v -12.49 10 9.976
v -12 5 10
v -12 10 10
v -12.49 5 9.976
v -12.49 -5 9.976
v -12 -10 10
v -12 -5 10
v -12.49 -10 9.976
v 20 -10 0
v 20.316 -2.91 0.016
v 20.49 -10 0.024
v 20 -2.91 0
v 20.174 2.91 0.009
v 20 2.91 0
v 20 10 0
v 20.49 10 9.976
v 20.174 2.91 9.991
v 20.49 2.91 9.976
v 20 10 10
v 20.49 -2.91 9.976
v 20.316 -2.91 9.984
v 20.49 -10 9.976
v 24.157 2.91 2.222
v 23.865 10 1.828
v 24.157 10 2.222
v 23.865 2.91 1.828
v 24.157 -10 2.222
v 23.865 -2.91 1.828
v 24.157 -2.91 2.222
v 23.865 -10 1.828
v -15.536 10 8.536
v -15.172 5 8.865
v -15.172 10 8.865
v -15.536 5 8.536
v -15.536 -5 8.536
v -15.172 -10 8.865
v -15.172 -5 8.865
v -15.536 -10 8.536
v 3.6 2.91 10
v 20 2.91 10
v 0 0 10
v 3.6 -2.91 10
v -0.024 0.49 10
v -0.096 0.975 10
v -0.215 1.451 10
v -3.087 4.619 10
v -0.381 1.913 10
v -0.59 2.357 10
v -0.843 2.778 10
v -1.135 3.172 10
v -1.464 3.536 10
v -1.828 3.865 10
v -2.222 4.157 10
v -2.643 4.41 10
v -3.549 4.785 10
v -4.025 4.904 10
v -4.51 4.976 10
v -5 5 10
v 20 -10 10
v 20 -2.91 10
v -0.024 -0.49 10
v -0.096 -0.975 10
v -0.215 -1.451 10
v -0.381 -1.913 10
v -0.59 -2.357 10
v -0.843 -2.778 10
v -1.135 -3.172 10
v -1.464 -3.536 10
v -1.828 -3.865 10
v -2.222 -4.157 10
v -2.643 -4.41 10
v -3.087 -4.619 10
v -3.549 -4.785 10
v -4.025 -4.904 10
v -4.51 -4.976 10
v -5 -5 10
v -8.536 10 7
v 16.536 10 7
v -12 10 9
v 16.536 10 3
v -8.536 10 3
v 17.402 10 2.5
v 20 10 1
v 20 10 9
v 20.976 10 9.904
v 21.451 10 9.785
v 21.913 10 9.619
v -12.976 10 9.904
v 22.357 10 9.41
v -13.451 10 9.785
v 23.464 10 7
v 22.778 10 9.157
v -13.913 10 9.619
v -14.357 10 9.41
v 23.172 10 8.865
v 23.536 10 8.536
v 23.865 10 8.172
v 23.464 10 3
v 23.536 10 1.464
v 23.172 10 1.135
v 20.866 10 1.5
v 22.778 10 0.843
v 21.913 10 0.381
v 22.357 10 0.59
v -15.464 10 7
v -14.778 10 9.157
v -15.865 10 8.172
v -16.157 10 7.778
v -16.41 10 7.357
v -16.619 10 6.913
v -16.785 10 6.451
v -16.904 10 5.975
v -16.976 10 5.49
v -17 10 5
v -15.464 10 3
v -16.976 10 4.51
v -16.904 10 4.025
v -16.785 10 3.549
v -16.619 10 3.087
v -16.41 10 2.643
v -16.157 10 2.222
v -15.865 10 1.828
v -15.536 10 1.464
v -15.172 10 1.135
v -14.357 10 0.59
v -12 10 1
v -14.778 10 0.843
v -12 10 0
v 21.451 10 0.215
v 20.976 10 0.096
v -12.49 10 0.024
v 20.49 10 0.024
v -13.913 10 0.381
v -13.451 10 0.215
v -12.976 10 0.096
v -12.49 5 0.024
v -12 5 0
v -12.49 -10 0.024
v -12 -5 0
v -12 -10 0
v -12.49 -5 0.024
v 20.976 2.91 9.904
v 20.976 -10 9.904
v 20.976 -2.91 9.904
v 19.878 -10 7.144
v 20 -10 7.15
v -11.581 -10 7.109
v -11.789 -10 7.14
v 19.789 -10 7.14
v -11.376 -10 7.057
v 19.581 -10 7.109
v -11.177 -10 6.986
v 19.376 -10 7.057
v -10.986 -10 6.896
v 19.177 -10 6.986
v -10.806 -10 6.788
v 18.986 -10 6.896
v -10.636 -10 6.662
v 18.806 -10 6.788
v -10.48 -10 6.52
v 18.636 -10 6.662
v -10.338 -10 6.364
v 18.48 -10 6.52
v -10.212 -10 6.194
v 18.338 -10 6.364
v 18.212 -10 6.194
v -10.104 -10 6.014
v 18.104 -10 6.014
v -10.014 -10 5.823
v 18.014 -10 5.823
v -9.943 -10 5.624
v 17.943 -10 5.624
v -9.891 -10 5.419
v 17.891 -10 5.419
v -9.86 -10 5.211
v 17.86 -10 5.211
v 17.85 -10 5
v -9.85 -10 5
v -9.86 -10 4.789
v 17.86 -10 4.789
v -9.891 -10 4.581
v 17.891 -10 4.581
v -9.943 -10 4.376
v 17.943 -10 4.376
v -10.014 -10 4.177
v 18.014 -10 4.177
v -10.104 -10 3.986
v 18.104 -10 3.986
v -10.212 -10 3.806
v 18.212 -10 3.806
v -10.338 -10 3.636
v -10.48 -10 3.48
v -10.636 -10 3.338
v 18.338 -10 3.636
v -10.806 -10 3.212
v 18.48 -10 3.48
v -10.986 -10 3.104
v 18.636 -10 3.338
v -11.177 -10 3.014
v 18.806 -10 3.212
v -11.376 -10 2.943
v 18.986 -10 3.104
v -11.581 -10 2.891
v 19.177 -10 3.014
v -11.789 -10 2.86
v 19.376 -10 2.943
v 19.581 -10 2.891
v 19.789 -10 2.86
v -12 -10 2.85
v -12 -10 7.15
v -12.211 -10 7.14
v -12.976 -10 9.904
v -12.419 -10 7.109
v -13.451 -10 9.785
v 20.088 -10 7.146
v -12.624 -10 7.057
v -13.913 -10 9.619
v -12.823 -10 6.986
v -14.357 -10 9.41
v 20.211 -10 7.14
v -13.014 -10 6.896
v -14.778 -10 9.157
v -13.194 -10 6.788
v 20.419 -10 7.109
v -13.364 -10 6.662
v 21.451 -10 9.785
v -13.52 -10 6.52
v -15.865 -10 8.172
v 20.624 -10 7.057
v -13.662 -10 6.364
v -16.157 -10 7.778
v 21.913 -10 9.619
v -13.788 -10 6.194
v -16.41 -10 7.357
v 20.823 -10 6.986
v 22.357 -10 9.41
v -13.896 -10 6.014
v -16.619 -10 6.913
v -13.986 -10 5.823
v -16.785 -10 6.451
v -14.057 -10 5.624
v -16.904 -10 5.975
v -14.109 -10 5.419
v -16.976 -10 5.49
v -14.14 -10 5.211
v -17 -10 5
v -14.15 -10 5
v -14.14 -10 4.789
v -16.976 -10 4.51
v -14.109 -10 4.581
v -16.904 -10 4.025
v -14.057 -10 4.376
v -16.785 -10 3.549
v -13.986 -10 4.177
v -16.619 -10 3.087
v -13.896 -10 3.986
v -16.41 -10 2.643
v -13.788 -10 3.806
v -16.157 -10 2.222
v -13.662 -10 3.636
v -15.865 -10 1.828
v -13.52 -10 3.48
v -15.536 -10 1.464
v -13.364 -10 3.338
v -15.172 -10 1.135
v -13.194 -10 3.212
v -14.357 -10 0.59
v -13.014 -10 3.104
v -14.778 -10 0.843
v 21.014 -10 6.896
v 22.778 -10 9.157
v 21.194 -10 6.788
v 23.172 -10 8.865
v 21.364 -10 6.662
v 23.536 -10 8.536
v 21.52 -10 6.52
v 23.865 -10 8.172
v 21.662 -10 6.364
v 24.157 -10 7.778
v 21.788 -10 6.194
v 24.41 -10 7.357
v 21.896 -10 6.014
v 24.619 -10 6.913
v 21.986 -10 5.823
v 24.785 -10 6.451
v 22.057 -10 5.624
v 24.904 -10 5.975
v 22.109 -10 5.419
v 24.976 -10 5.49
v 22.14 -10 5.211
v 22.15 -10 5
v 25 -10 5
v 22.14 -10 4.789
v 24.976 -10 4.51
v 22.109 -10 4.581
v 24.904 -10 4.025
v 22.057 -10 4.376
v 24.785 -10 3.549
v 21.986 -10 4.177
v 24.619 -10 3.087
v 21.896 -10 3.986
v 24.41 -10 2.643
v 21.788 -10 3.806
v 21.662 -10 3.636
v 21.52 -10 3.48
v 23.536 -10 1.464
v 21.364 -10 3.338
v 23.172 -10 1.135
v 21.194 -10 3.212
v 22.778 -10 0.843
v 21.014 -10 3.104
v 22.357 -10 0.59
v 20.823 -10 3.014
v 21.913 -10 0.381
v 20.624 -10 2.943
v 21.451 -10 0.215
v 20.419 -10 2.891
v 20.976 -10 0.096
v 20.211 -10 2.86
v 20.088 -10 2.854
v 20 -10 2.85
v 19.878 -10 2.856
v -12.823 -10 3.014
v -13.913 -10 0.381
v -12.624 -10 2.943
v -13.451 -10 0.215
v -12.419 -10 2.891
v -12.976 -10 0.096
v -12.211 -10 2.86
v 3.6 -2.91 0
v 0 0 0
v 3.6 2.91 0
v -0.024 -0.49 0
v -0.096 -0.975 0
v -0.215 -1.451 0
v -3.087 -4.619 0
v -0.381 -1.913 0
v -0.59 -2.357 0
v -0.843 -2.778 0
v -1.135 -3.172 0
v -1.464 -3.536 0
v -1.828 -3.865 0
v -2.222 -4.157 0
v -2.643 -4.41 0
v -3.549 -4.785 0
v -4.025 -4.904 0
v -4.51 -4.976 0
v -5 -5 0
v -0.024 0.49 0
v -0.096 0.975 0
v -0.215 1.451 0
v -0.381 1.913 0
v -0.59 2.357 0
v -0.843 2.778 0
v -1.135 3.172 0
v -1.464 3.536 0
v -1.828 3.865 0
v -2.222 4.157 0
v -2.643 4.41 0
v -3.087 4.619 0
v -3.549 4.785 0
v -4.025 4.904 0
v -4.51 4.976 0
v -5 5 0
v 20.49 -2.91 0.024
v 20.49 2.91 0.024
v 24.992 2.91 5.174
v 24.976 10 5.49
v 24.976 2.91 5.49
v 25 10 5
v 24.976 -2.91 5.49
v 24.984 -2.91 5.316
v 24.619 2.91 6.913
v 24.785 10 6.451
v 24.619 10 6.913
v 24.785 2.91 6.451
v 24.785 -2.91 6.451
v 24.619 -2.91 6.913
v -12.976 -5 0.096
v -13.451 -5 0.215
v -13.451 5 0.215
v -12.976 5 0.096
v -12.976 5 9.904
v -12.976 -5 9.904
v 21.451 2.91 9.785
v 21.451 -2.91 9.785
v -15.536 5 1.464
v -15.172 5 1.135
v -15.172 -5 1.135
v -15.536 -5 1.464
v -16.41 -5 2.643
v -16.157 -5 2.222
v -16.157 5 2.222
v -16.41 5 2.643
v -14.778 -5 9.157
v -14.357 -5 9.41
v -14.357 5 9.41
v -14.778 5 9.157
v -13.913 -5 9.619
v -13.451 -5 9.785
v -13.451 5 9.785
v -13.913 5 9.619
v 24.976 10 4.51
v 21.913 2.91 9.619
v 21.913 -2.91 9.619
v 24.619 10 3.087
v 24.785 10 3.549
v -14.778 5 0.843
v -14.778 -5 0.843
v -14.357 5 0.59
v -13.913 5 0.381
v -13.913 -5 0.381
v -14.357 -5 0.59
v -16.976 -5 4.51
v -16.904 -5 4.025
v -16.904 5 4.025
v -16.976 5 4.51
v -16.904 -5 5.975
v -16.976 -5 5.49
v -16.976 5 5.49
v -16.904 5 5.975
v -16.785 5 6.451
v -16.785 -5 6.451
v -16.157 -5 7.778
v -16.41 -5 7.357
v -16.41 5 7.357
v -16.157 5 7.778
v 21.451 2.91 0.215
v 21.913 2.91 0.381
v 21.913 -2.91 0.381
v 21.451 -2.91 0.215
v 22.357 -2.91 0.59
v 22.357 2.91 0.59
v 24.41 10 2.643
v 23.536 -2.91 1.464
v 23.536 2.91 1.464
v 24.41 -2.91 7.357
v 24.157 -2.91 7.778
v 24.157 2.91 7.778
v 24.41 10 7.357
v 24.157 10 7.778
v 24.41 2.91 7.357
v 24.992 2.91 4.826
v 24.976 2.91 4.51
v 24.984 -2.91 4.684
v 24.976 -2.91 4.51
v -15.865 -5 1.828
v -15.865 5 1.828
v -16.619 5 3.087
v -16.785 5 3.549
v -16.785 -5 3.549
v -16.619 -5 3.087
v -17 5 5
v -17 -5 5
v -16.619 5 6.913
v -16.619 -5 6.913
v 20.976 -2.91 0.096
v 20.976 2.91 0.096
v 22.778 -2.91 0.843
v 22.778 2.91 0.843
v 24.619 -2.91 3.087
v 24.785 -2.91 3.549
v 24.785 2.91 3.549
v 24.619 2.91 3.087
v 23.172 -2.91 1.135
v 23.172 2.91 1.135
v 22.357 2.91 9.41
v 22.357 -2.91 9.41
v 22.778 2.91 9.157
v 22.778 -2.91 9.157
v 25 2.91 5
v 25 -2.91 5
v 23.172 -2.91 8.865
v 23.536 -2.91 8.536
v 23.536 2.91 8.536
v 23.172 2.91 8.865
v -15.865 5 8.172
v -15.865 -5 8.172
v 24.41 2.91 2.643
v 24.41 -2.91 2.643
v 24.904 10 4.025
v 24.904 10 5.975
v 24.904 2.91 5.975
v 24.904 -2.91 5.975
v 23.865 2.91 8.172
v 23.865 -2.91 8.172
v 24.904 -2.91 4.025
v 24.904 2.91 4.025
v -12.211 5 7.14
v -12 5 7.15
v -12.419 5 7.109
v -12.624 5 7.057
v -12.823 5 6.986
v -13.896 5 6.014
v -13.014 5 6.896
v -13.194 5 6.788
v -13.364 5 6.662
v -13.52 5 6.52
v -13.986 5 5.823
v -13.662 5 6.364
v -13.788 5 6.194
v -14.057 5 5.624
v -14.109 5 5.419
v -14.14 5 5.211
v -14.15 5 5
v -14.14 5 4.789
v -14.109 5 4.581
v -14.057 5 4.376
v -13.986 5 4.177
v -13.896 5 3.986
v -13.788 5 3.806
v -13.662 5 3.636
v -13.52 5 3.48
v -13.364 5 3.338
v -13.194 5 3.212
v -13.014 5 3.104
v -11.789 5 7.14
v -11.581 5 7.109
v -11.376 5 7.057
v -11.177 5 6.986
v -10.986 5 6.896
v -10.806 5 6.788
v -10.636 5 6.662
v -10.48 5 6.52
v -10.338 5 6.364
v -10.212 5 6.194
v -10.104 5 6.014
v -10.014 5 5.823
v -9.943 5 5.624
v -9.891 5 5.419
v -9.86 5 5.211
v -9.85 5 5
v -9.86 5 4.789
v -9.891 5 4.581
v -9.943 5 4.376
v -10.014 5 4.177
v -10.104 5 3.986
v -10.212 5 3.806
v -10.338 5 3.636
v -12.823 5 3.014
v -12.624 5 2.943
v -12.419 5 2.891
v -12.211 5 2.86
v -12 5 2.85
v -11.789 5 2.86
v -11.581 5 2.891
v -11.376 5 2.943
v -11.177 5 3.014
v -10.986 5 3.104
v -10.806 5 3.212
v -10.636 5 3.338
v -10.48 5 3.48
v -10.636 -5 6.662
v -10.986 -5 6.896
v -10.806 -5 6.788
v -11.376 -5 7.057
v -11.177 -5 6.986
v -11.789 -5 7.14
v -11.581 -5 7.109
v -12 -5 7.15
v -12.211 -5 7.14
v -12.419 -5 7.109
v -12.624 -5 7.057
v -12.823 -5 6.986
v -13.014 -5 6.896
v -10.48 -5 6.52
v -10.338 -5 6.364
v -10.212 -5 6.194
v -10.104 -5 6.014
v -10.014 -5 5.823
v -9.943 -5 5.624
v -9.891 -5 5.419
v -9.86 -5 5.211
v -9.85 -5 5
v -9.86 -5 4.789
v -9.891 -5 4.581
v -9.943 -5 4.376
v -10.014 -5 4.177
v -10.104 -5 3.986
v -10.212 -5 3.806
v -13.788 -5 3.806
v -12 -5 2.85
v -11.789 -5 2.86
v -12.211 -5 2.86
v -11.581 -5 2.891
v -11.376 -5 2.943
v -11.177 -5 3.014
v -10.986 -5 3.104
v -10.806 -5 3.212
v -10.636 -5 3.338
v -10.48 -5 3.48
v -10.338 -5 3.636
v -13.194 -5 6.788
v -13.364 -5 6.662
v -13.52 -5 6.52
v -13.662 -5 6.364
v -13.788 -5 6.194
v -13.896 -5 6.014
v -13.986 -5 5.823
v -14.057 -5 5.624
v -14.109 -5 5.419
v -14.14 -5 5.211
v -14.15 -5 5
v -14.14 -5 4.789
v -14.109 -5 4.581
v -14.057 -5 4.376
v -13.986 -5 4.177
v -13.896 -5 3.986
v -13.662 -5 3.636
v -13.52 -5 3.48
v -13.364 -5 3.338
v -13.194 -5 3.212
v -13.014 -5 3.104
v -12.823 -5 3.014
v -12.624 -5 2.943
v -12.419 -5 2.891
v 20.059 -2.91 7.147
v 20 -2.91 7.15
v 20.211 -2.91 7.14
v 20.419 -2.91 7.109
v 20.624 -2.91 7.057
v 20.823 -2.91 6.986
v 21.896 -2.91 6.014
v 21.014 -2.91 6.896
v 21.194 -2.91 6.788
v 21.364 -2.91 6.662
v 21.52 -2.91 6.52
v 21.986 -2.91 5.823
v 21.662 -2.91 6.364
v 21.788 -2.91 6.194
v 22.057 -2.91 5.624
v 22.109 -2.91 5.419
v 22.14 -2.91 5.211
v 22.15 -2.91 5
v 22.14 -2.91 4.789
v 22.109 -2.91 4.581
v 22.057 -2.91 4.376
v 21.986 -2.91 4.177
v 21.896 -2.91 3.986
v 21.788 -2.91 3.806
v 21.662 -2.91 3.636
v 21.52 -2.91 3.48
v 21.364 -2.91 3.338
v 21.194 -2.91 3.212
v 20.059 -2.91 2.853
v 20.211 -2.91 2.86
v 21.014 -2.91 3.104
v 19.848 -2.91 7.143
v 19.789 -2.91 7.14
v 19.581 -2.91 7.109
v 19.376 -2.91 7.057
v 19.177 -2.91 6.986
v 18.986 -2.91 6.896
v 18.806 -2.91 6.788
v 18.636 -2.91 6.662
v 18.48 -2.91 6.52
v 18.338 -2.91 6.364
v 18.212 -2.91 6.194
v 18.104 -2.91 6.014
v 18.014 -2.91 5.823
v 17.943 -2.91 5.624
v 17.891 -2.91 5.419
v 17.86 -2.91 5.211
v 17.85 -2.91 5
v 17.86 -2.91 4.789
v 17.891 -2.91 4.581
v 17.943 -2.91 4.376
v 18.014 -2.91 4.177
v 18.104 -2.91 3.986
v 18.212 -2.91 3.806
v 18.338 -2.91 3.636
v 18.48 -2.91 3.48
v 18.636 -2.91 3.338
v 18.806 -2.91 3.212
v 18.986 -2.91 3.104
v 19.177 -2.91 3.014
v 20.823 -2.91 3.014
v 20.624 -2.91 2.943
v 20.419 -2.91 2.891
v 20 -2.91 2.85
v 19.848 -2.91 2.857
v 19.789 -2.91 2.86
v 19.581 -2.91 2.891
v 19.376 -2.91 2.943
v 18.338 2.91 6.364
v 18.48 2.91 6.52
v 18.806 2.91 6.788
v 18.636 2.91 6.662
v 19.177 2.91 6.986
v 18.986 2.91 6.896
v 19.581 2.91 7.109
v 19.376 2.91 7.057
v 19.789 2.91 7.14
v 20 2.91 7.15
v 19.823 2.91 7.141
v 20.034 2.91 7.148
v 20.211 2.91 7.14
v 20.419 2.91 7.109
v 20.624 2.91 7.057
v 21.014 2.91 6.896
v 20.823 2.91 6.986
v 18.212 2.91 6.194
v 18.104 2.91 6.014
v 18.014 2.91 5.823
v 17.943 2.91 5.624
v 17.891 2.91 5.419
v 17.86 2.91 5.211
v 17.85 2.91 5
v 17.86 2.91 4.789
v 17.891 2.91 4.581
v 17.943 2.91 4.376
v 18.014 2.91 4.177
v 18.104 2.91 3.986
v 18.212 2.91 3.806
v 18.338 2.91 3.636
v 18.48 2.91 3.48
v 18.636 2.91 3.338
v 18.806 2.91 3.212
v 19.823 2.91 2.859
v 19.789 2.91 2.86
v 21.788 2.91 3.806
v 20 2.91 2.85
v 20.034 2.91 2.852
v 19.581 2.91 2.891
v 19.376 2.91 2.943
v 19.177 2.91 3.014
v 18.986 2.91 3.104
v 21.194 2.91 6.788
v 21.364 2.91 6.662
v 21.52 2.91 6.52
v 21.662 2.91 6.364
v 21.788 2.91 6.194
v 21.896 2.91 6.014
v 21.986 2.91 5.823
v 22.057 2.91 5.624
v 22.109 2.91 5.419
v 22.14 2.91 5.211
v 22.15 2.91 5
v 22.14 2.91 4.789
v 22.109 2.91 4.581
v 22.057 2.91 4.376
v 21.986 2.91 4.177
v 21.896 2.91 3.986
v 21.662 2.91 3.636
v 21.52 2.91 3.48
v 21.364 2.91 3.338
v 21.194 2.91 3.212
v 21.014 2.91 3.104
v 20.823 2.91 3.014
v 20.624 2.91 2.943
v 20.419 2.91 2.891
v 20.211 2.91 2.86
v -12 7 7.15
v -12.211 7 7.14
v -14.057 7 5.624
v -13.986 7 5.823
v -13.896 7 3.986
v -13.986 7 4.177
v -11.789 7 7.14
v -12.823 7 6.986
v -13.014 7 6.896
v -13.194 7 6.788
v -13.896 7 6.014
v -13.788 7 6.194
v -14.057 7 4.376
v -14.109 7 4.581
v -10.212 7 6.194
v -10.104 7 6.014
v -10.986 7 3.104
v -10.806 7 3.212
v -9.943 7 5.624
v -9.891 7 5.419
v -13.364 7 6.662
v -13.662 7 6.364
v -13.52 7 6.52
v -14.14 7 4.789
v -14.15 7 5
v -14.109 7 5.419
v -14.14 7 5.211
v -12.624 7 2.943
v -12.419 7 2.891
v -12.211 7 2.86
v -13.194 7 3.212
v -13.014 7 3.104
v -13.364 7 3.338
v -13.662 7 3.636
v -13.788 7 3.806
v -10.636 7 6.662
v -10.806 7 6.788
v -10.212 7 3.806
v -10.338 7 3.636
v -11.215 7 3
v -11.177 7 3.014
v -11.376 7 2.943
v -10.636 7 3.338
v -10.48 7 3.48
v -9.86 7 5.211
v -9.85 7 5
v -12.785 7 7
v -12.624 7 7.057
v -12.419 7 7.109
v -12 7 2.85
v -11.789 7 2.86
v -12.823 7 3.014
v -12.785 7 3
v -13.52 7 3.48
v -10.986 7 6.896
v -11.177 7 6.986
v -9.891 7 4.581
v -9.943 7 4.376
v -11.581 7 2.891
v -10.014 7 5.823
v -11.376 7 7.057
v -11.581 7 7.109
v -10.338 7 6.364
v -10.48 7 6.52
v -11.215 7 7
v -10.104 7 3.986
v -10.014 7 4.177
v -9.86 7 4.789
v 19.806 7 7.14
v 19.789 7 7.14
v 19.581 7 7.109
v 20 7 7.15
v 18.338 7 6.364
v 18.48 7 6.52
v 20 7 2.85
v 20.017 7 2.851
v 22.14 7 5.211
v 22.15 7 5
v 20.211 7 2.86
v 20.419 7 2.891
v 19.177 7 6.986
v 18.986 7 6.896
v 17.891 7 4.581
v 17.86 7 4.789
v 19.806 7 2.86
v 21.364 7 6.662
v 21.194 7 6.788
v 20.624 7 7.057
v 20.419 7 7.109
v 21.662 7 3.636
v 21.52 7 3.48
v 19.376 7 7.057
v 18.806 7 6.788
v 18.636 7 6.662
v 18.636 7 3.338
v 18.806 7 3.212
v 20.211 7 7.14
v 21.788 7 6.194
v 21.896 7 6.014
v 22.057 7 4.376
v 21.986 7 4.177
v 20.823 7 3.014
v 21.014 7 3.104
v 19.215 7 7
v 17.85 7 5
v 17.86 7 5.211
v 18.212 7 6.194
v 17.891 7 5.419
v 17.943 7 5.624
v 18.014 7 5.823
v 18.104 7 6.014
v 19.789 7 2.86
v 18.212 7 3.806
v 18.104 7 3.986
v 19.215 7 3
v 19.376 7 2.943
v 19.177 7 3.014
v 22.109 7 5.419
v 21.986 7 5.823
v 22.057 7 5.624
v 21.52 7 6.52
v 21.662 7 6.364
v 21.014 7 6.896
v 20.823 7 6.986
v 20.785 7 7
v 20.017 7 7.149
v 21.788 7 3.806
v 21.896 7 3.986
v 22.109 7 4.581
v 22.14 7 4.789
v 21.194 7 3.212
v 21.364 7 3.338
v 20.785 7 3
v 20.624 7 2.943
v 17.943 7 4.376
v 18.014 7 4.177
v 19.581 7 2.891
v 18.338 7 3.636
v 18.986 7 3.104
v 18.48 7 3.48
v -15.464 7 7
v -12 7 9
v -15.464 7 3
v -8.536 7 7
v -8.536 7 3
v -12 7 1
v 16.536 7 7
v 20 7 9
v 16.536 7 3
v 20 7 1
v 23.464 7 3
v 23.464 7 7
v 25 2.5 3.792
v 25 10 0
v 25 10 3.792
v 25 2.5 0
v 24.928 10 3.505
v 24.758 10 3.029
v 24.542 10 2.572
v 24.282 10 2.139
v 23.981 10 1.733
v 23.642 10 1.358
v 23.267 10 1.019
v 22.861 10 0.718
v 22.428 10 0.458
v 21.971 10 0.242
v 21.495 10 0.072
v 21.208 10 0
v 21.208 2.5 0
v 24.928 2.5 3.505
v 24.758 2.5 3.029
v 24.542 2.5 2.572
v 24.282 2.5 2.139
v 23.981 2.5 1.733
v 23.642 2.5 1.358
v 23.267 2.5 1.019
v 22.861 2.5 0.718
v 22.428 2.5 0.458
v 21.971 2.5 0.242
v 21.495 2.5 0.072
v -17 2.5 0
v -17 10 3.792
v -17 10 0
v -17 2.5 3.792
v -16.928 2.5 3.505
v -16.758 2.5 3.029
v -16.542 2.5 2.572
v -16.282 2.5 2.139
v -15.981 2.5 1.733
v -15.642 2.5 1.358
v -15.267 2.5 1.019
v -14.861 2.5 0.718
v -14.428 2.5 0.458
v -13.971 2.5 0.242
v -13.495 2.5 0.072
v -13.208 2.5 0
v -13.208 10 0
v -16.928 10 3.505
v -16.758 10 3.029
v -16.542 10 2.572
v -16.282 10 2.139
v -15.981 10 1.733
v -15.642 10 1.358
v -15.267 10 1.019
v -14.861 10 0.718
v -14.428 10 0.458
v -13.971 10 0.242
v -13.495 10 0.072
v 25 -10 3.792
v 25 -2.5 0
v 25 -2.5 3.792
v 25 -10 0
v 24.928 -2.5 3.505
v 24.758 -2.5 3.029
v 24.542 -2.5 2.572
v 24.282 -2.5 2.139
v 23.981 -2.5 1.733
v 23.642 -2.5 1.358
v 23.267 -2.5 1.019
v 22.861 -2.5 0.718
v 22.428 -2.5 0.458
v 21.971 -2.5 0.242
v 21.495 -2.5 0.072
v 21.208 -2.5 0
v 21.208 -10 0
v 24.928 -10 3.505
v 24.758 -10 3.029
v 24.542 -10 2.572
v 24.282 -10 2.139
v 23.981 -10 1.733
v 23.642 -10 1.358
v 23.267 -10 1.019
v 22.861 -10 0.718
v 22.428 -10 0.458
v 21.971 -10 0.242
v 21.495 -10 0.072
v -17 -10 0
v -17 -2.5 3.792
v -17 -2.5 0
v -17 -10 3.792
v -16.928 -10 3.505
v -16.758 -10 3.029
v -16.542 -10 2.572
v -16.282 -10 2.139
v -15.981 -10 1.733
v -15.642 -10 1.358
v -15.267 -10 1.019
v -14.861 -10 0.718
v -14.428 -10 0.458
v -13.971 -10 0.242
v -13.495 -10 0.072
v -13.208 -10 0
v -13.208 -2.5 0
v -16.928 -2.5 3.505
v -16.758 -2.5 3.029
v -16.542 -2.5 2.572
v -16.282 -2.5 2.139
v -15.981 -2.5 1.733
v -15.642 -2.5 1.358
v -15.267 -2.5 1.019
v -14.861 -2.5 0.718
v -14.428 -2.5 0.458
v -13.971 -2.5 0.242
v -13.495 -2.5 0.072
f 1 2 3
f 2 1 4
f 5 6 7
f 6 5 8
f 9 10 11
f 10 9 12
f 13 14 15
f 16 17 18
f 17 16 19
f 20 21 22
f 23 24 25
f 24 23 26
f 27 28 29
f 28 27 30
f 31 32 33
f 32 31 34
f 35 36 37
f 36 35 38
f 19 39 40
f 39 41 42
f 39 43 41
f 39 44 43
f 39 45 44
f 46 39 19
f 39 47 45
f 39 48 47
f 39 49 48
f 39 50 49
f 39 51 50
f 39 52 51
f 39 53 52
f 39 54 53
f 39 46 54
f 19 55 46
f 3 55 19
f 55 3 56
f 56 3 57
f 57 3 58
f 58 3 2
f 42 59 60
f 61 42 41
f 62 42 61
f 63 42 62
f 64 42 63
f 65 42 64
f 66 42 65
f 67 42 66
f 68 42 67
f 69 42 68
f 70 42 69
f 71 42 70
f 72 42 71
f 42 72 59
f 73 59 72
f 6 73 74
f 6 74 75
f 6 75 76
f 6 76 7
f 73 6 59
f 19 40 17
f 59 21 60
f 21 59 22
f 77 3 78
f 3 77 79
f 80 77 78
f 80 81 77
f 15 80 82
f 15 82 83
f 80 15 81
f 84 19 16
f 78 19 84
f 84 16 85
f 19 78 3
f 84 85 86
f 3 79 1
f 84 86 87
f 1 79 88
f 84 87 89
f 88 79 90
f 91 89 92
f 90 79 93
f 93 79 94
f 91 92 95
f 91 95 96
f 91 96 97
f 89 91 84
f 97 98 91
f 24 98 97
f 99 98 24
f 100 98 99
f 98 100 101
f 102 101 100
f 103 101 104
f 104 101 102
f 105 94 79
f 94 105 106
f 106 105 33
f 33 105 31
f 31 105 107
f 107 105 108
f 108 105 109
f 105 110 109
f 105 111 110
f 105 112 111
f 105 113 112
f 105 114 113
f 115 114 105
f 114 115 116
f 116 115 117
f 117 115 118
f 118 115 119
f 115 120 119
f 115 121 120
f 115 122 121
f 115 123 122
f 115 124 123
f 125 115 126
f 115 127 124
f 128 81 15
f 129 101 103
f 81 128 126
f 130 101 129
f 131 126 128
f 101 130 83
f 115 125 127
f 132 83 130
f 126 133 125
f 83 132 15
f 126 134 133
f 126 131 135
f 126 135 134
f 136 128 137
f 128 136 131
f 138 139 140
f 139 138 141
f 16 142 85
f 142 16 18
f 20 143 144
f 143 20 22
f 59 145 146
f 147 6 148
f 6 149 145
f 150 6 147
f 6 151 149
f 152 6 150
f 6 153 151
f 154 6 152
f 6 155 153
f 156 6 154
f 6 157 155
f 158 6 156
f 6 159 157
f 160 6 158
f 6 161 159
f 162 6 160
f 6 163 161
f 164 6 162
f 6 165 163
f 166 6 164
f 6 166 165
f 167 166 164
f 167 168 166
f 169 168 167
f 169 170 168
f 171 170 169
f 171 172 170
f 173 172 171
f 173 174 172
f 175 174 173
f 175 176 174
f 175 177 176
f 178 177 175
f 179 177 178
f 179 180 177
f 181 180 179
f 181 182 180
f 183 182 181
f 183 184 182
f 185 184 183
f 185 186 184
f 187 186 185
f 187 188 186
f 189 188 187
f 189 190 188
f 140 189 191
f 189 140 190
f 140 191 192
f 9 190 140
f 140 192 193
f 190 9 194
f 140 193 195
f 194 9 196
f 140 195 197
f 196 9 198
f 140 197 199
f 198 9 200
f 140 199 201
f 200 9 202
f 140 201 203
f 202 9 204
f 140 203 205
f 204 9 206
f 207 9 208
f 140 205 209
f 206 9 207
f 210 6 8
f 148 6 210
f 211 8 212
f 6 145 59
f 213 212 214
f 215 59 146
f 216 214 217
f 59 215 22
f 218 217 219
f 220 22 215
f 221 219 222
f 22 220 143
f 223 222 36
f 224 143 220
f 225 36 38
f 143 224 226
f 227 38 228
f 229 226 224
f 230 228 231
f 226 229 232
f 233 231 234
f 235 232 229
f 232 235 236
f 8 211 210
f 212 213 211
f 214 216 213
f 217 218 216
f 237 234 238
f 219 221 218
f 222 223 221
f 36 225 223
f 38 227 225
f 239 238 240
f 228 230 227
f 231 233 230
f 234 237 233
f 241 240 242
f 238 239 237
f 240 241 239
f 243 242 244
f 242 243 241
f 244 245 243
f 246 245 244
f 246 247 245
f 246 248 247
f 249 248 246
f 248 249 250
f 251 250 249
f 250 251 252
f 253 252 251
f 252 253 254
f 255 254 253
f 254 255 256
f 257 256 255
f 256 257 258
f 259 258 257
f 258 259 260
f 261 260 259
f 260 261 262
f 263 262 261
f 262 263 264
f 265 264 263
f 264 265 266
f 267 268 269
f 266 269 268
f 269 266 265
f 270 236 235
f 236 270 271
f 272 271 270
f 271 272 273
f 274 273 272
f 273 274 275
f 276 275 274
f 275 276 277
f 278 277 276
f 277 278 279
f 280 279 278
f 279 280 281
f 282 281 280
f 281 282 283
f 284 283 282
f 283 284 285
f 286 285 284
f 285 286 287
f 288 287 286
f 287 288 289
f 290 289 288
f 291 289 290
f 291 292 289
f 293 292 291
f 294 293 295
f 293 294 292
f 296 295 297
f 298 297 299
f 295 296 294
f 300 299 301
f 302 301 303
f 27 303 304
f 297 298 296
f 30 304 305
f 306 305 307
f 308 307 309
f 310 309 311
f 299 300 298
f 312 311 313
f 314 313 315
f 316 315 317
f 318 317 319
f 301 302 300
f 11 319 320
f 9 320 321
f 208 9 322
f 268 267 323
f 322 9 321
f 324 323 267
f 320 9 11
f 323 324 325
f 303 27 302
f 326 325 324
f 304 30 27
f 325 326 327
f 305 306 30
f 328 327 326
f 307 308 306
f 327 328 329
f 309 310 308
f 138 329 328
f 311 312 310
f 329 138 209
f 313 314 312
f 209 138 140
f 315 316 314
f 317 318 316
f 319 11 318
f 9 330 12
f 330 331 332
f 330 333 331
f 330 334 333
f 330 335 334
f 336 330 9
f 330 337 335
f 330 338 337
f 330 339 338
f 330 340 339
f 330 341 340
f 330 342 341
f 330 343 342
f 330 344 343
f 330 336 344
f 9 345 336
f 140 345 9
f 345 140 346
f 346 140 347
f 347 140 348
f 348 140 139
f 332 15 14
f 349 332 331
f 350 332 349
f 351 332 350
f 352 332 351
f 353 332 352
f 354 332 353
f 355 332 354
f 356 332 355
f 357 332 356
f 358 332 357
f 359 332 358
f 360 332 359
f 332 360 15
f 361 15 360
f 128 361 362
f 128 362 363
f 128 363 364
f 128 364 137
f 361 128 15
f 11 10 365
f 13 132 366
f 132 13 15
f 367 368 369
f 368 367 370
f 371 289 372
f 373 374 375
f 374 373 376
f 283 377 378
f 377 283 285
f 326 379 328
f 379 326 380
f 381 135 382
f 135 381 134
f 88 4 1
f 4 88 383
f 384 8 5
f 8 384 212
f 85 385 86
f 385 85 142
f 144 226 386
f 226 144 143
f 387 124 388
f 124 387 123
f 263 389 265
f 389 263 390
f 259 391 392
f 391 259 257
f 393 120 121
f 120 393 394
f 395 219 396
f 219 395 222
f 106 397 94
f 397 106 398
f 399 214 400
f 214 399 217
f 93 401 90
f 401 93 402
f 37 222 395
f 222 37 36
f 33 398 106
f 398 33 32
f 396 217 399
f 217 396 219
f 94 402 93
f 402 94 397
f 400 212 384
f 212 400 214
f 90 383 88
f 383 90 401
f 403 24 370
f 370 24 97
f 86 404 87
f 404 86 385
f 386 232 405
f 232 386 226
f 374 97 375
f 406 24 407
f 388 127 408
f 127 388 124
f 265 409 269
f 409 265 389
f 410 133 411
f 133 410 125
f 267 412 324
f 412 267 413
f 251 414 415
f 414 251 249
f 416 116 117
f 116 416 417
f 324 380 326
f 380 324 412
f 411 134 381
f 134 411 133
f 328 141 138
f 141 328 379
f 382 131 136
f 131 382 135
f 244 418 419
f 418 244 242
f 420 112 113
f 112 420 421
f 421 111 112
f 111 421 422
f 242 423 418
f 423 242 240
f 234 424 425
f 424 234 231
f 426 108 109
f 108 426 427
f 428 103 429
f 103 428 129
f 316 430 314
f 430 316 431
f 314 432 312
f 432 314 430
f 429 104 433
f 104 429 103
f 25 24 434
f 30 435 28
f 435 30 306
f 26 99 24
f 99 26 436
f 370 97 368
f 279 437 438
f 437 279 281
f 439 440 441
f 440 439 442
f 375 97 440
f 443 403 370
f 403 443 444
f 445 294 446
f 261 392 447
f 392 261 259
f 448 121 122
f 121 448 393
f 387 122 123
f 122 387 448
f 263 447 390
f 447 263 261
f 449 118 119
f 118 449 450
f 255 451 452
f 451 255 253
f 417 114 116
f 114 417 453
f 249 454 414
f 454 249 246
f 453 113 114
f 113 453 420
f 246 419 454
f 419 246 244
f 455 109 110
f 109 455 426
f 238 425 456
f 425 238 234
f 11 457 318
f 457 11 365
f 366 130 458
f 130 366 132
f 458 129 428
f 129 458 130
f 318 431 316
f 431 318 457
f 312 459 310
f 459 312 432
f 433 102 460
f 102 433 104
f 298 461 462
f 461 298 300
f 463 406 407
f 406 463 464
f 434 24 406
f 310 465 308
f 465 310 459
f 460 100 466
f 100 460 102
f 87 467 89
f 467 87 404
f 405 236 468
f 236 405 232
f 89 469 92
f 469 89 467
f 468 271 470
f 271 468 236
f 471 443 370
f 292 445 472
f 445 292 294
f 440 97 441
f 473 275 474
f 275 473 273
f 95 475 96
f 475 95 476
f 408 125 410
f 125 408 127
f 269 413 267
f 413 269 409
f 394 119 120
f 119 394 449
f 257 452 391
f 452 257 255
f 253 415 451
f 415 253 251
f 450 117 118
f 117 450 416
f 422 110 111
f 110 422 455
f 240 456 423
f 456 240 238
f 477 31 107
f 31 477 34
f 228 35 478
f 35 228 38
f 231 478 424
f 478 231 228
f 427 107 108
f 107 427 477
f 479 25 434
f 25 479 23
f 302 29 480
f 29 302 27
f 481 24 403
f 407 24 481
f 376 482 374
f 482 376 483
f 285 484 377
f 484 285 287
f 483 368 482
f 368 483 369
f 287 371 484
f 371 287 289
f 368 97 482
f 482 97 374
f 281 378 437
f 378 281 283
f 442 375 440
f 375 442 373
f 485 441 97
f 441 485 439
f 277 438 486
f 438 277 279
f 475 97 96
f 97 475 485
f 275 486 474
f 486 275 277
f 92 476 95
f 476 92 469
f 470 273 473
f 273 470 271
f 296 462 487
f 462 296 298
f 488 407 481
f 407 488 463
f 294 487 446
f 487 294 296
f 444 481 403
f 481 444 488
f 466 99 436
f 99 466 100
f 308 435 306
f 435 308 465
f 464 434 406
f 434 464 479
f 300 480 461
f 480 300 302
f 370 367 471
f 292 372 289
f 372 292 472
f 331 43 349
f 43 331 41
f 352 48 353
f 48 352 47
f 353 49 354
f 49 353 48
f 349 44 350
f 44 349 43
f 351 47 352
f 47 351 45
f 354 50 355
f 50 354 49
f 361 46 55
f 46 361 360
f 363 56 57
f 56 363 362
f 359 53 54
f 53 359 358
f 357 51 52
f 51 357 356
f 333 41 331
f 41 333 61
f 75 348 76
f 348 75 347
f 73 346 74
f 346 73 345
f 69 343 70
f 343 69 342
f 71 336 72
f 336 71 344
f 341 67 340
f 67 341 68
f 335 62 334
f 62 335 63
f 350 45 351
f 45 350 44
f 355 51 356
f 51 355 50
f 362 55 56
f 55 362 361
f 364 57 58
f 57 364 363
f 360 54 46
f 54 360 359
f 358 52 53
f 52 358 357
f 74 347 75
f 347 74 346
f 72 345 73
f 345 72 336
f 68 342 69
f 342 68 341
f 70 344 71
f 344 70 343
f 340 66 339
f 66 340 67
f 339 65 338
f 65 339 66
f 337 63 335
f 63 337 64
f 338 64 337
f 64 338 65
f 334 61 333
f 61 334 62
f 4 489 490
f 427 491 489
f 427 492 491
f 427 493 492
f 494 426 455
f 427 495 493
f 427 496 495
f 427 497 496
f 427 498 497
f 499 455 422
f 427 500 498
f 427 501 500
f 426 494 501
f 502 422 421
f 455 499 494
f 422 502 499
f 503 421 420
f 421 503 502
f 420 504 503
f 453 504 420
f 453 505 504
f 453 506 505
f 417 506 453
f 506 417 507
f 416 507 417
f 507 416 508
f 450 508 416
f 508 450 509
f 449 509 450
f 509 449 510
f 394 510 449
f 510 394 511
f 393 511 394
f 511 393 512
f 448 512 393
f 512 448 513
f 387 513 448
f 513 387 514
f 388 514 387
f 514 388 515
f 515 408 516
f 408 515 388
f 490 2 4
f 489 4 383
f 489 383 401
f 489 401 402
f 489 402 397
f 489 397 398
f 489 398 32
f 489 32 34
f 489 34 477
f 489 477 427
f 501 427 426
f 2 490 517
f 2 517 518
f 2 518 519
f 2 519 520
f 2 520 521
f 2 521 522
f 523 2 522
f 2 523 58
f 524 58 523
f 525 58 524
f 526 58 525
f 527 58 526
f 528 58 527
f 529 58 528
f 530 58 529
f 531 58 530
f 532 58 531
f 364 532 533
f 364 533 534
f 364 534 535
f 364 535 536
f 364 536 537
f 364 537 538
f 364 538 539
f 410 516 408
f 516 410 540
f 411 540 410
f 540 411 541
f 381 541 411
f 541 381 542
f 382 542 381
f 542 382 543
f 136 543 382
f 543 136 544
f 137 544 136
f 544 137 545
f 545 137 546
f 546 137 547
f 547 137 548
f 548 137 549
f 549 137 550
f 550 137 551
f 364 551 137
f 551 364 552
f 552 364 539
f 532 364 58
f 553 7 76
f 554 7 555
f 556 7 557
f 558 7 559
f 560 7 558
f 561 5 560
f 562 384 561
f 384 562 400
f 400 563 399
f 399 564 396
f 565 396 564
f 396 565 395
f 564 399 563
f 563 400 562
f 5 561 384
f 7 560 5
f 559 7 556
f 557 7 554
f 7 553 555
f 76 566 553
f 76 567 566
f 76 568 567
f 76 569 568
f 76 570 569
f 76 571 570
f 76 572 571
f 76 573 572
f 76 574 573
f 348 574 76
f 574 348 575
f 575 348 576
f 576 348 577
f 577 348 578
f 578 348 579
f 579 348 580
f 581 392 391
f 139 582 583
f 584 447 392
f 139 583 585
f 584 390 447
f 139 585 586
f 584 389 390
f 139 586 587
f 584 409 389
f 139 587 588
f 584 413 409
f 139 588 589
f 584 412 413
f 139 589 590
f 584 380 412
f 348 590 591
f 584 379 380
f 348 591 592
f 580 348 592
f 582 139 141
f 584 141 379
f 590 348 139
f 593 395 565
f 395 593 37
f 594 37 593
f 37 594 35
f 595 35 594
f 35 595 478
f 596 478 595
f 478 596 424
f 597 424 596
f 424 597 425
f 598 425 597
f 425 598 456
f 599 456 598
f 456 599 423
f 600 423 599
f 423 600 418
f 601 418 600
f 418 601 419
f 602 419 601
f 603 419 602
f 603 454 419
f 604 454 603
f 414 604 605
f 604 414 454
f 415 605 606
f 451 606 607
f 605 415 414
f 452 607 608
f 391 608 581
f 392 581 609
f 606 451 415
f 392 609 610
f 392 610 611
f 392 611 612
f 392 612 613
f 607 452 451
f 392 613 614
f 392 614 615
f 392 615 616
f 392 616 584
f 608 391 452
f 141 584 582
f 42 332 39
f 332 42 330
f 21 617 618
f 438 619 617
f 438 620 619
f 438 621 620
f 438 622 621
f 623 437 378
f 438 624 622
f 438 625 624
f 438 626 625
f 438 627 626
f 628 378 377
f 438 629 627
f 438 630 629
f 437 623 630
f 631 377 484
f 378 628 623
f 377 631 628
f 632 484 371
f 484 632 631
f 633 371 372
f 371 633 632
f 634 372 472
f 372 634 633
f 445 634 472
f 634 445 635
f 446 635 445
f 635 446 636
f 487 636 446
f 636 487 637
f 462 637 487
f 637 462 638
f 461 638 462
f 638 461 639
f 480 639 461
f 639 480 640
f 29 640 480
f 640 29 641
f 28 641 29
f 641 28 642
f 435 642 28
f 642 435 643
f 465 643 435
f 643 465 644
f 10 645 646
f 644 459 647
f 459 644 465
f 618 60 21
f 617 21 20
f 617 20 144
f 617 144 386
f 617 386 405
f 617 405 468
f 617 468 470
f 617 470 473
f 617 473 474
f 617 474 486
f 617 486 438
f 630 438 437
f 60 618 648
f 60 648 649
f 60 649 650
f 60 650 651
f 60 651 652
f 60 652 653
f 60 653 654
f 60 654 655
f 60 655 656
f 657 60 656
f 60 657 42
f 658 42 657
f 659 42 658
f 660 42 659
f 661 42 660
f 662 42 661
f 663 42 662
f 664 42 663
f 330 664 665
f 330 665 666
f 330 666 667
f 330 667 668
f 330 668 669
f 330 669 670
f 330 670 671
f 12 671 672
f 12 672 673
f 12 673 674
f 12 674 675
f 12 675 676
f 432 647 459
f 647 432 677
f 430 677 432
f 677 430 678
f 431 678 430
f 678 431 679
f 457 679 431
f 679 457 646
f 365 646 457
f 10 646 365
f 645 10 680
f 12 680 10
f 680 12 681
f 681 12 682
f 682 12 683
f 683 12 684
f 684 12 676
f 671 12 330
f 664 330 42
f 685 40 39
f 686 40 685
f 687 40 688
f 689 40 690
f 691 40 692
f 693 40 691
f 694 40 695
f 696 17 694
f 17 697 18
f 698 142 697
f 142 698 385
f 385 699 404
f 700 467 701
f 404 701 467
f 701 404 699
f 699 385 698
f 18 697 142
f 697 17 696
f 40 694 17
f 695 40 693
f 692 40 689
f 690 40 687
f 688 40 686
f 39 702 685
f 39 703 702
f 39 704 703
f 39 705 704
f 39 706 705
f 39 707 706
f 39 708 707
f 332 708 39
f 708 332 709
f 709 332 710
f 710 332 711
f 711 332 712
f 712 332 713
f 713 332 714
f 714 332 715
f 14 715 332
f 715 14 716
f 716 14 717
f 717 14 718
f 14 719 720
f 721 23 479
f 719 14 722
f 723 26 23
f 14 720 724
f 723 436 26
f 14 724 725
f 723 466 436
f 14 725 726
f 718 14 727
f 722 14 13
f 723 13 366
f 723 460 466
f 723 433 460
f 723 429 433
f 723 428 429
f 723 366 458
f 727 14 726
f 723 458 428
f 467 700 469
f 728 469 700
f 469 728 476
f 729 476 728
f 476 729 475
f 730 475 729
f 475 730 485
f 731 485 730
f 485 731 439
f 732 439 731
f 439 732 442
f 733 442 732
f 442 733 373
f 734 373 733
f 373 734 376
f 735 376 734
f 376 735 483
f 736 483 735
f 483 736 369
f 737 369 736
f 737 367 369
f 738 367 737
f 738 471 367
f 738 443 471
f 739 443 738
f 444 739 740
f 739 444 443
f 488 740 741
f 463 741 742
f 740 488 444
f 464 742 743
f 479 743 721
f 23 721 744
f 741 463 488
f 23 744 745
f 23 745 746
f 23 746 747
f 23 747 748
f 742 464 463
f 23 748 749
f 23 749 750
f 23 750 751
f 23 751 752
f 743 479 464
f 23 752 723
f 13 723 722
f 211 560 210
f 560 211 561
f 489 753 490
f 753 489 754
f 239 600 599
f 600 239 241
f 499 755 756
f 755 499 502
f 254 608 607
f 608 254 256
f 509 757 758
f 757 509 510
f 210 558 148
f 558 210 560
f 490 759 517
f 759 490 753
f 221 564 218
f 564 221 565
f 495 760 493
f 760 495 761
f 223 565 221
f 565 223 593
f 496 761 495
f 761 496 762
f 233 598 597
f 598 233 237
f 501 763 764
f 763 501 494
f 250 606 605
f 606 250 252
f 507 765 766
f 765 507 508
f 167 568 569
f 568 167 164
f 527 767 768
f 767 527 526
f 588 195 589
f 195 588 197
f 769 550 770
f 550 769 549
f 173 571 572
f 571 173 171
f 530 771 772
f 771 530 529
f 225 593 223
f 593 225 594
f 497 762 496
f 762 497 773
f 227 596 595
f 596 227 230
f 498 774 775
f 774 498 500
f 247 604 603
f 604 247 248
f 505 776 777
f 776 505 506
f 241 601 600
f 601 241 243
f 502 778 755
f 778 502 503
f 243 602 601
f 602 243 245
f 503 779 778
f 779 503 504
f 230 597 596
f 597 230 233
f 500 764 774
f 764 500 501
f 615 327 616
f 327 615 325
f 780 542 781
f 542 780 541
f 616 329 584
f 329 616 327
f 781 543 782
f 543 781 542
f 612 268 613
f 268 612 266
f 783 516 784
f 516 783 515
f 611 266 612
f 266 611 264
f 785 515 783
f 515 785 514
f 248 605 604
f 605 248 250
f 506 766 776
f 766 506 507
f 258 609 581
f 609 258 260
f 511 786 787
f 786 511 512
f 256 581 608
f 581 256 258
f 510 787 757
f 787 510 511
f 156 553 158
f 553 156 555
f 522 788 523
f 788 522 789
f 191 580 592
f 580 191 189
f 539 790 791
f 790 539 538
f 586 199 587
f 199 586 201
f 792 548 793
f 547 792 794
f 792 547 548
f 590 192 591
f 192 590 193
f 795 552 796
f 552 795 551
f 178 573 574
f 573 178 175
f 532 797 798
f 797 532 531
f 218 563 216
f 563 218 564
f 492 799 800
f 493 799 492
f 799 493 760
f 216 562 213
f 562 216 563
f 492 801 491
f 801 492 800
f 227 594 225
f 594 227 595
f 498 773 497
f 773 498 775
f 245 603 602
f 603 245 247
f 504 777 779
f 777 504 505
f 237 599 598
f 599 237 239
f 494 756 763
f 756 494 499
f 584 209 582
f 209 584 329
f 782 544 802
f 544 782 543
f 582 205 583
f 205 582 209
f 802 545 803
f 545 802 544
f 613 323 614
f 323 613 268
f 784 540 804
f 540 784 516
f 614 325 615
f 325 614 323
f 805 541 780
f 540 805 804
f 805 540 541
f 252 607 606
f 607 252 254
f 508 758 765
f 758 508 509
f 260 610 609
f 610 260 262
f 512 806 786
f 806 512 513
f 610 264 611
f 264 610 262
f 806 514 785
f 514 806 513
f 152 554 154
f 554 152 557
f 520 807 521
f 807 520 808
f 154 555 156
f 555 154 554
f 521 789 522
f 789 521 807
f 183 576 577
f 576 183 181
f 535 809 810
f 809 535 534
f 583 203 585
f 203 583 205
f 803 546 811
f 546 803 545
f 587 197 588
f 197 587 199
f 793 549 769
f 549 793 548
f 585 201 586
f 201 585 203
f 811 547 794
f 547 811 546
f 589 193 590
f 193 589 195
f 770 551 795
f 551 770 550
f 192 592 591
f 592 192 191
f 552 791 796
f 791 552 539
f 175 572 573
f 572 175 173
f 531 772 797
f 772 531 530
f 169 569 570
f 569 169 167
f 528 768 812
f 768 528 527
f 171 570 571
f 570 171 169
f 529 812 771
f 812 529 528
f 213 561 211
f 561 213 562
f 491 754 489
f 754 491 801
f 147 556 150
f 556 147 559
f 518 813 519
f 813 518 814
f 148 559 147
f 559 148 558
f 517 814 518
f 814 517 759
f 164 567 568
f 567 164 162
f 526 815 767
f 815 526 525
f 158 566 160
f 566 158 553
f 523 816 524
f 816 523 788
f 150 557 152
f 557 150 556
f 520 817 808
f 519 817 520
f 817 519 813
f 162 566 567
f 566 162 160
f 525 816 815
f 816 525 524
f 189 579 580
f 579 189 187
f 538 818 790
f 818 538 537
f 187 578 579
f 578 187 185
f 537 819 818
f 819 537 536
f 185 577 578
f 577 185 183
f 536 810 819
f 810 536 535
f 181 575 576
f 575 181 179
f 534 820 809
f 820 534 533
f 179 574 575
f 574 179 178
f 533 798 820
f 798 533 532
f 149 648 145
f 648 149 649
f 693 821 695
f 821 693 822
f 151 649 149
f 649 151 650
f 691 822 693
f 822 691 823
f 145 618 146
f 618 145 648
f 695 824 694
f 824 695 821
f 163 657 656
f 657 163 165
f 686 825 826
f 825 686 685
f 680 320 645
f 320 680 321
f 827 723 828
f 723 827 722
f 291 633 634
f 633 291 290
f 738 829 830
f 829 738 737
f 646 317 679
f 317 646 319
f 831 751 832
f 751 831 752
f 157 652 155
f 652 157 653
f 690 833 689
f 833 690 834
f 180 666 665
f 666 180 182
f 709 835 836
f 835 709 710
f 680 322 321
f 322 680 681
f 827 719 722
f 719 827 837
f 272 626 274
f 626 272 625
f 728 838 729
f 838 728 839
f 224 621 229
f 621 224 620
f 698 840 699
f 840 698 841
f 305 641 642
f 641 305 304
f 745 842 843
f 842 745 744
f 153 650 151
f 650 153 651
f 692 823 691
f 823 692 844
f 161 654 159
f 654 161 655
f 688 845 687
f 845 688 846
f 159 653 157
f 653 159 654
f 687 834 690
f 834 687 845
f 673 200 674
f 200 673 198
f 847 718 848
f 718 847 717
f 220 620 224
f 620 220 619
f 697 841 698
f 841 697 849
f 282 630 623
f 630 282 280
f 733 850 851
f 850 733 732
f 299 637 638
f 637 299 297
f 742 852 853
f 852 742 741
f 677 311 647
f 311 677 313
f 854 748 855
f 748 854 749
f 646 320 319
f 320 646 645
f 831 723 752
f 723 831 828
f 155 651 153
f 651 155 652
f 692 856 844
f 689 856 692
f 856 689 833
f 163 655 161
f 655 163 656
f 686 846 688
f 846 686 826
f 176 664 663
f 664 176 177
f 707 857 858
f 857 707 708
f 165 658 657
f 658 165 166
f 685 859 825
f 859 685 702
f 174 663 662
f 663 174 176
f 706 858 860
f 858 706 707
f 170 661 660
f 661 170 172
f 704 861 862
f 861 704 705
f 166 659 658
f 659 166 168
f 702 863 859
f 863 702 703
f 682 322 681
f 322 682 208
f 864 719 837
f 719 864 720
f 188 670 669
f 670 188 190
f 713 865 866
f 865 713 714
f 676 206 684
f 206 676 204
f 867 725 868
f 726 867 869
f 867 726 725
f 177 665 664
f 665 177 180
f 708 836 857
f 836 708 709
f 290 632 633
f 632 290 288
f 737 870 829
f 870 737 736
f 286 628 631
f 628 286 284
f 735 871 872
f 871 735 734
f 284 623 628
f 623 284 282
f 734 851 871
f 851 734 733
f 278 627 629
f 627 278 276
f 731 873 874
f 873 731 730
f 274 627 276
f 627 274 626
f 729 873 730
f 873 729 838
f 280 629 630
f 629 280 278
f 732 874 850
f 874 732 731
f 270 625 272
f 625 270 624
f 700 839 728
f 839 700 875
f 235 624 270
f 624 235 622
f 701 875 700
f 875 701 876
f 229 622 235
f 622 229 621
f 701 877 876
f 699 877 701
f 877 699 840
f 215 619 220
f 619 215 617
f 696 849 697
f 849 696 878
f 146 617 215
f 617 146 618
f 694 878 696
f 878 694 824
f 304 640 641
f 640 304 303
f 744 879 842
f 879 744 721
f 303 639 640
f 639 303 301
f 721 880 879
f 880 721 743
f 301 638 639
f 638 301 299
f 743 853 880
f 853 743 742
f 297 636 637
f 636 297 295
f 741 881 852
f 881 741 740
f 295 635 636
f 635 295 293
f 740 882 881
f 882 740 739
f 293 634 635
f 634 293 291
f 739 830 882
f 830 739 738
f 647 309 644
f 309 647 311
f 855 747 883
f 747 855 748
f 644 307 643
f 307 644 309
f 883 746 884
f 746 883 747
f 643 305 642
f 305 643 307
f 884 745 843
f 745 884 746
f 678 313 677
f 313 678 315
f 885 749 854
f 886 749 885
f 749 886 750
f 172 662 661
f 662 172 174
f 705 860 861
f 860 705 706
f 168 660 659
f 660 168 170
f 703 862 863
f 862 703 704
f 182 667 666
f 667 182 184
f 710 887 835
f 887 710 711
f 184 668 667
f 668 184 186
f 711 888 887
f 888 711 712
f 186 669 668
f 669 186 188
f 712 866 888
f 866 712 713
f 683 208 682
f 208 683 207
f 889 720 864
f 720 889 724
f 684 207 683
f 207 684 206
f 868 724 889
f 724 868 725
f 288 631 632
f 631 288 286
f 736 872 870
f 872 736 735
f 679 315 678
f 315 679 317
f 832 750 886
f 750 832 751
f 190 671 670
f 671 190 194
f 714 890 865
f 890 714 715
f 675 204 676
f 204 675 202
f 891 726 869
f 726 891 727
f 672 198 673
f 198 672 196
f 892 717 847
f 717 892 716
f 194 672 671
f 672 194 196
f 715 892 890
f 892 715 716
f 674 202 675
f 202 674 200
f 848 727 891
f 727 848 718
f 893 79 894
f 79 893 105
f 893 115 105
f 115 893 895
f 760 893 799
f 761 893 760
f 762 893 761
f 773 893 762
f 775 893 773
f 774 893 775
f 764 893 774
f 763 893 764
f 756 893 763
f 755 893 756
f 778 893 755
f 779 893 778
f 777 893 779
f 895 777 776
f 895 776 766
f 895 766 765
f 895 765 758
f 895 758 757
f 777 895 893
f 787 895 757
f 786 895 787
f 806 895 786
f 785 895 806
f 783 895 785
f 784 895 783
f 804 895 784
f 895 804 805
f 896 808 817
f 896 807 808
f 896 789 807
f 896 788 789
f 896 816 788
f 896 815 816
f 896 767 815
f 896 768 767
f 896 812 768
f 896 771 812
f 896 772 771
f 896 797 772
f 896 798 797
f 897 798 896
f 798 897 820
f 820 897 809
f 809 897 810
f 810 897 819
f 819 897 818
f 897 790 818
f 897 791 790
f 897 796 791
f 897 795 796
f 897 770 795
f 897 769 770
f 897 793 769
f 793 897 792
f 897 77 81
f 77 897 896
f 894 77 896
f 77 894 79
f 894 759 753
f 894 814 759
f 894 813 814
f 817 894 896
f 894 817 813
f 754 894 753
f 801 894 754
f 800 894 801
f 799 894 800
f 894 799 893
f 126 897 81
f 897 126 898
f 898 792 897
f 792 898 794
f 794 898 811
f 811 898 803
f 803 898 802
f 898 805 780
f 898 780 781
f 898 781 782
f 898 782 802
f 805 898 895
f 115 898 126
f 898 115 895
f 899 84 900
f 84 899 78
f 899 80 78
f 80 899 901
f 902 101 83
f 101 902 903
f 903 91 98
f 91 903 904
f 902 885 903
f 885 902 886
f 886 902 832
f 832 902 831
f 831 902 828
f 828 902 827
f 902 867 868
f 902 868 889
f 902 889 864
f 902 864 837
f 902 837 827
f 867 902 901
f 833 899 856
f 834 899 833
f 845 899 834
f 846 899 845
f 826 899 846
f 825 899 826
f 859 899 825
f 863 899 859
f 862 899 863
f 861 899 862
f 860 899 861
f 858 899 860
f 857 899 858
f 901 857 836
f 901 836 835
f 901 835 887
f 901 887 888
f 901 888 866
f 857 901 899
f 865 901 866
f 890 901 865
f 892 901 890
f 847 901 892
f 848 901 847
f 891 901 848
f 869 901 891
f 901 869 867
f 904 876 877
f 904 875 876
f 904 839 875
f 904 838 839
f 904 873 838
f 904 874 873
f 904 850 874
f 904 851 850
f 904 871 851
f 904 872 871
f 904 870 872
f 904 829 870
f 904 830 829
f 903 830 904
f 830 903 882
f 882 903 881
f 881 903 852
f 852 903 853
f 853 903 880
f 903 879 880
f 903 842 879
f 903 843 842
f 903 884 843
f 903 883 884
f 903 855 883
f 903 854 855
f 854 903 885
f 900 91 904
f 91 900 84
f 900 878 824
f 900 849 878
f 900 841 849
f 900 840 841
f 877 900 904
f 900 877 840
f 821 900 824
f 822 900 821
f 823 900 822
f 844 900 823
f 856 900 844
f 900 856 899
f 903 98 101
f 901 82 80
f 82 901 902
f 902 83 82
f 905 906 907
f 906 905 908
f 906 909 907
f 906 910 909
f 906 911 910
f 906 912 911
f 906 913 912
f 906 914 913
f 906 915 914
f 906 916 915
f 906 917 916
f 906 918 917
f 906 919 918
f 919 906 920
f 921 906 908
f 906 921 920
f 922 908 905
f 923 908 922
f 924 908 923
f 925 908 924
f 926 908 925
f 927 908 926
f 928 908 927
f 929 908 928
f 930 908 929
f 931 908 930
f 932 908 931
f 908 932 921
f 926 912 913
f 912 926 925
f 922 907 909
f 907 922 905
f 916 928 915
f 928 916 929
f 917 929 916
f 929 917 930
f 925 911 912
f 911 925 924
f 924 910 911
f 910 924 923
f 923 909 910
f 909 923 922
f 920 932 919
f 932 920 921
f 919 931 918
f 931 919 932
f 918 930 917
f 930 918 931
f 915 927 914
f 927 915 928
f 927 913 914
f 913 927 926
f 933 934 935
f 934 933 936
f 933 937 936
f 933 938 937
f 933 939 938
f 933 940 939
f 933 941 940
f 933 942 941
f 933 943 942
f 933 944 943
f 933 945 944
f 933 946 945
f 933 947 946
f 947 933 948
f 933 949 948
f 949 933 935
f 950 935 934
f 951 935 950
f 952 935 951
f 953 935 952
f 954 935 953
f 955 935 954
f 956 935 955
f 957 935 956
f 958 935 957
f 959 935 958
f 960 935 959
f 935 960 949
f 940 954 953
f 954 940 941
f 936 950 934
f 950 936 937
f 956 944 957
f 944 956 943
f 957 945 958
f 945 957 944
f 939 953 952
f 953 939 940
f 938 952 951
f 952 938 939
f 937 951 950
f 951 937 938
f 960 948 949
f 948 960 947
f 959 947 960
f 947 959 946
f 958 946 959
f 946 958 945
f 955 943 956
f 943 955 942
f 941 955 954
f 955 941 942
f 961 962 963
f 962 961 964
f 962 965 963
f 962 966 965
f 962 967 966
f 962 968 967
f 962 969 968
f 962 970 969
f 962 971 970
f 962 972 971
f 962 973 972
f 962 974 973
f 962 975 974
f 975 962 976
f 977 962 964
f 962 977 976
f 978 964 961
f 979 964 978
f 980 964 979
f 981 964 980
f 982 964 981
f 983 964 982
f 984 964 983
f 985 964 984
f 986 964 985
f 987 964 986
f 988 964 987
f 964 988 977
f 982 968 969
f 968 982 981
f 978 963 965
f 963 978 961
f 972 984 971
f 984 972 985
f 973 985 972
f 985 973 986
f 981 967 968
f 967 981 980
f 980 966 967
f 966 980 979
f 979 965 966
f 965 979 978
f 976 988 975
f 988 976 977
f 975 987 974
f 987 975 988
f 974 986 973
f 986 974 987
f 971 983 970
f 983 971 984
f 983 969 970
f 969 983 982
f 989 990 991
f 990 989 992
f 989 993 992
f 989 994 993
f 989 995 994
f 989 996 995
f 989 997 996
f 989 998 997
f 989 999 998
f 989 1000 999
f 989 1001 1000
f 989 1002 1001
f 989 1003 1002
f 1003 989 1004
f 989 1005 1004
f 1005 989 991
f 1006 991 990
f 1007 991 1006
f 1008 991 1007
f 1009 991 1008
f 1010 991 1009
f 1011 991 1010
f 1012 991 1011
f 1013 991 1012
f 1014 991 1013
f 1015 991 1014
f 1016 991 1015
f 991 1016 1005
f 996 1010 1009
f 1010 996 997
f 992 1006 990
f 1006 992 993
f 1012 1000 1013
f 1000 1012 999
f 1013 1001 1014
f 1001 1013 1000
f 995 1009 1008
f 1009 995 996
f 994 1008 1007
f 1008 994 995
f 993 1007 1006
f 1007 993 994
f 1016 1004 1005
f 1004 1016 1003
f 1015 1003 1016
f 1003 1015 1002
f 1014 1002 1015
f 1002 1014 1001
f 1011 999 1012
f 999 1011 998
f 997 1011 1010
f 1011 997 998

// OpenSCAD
 module endstop_halter() {
     difference() {
         union() {
             hull() {
                 translate([2, 10, 22]) rotate([90, 0, 0]) cylinder(d=10, h=20, $fn=64);
                 translate([2, 10, -10]) rotate([90, 0, 0]) cylinder(d=10, h=20, $fn=64);
             }
         }
         translate([-25, 0, 15]) rotate([0, 90, 0]) cylinder(d=10, h=50, $fn=64);
         translate([2, 0, 30]) cube([12, 10, 30], center=true);
         translate([0, 0, -10]) cube([30, 5.82, 12.8+20], center=true);
         translate([2, 11, 22]) rotate([90, 0, 0]) cylinder(d=4.3, h=50, $fn=64);
         translate([2, 11, -10]) rotate([90, 0, 0]) cylinder(d=4.3, h=50, $fn=64);
         translate([2, 11, 22]) rotate([90, 0, 0]) cylinder(d=8, h=4, $fn=6);
         translate([2, 11, -10]) rotate([90, 0, 0]) cylinder(d=8, h=4, $fn=6);
     }
 }
 
//translate([10, 0, 3]) rotate([0, -90, 0]) color("gray") cube([6.6, 5.82, 12.8], center=true);
translate([10, 0, 3]) rotate([0, -90, 0]) endstop_halter();
for(i=[0, 1]) for(j=[0, 1]) translate([20-j*32, 2.5+i*-12.5+j*7.5, 0]) rotate([0, 0, j*180]) difference() {
    cube([5, 7.5, 5]);
    translate([0, 11, 5]) rotate([90, 0, 0]) cylinder(d=10.3, h=12, $fn=64);
}
